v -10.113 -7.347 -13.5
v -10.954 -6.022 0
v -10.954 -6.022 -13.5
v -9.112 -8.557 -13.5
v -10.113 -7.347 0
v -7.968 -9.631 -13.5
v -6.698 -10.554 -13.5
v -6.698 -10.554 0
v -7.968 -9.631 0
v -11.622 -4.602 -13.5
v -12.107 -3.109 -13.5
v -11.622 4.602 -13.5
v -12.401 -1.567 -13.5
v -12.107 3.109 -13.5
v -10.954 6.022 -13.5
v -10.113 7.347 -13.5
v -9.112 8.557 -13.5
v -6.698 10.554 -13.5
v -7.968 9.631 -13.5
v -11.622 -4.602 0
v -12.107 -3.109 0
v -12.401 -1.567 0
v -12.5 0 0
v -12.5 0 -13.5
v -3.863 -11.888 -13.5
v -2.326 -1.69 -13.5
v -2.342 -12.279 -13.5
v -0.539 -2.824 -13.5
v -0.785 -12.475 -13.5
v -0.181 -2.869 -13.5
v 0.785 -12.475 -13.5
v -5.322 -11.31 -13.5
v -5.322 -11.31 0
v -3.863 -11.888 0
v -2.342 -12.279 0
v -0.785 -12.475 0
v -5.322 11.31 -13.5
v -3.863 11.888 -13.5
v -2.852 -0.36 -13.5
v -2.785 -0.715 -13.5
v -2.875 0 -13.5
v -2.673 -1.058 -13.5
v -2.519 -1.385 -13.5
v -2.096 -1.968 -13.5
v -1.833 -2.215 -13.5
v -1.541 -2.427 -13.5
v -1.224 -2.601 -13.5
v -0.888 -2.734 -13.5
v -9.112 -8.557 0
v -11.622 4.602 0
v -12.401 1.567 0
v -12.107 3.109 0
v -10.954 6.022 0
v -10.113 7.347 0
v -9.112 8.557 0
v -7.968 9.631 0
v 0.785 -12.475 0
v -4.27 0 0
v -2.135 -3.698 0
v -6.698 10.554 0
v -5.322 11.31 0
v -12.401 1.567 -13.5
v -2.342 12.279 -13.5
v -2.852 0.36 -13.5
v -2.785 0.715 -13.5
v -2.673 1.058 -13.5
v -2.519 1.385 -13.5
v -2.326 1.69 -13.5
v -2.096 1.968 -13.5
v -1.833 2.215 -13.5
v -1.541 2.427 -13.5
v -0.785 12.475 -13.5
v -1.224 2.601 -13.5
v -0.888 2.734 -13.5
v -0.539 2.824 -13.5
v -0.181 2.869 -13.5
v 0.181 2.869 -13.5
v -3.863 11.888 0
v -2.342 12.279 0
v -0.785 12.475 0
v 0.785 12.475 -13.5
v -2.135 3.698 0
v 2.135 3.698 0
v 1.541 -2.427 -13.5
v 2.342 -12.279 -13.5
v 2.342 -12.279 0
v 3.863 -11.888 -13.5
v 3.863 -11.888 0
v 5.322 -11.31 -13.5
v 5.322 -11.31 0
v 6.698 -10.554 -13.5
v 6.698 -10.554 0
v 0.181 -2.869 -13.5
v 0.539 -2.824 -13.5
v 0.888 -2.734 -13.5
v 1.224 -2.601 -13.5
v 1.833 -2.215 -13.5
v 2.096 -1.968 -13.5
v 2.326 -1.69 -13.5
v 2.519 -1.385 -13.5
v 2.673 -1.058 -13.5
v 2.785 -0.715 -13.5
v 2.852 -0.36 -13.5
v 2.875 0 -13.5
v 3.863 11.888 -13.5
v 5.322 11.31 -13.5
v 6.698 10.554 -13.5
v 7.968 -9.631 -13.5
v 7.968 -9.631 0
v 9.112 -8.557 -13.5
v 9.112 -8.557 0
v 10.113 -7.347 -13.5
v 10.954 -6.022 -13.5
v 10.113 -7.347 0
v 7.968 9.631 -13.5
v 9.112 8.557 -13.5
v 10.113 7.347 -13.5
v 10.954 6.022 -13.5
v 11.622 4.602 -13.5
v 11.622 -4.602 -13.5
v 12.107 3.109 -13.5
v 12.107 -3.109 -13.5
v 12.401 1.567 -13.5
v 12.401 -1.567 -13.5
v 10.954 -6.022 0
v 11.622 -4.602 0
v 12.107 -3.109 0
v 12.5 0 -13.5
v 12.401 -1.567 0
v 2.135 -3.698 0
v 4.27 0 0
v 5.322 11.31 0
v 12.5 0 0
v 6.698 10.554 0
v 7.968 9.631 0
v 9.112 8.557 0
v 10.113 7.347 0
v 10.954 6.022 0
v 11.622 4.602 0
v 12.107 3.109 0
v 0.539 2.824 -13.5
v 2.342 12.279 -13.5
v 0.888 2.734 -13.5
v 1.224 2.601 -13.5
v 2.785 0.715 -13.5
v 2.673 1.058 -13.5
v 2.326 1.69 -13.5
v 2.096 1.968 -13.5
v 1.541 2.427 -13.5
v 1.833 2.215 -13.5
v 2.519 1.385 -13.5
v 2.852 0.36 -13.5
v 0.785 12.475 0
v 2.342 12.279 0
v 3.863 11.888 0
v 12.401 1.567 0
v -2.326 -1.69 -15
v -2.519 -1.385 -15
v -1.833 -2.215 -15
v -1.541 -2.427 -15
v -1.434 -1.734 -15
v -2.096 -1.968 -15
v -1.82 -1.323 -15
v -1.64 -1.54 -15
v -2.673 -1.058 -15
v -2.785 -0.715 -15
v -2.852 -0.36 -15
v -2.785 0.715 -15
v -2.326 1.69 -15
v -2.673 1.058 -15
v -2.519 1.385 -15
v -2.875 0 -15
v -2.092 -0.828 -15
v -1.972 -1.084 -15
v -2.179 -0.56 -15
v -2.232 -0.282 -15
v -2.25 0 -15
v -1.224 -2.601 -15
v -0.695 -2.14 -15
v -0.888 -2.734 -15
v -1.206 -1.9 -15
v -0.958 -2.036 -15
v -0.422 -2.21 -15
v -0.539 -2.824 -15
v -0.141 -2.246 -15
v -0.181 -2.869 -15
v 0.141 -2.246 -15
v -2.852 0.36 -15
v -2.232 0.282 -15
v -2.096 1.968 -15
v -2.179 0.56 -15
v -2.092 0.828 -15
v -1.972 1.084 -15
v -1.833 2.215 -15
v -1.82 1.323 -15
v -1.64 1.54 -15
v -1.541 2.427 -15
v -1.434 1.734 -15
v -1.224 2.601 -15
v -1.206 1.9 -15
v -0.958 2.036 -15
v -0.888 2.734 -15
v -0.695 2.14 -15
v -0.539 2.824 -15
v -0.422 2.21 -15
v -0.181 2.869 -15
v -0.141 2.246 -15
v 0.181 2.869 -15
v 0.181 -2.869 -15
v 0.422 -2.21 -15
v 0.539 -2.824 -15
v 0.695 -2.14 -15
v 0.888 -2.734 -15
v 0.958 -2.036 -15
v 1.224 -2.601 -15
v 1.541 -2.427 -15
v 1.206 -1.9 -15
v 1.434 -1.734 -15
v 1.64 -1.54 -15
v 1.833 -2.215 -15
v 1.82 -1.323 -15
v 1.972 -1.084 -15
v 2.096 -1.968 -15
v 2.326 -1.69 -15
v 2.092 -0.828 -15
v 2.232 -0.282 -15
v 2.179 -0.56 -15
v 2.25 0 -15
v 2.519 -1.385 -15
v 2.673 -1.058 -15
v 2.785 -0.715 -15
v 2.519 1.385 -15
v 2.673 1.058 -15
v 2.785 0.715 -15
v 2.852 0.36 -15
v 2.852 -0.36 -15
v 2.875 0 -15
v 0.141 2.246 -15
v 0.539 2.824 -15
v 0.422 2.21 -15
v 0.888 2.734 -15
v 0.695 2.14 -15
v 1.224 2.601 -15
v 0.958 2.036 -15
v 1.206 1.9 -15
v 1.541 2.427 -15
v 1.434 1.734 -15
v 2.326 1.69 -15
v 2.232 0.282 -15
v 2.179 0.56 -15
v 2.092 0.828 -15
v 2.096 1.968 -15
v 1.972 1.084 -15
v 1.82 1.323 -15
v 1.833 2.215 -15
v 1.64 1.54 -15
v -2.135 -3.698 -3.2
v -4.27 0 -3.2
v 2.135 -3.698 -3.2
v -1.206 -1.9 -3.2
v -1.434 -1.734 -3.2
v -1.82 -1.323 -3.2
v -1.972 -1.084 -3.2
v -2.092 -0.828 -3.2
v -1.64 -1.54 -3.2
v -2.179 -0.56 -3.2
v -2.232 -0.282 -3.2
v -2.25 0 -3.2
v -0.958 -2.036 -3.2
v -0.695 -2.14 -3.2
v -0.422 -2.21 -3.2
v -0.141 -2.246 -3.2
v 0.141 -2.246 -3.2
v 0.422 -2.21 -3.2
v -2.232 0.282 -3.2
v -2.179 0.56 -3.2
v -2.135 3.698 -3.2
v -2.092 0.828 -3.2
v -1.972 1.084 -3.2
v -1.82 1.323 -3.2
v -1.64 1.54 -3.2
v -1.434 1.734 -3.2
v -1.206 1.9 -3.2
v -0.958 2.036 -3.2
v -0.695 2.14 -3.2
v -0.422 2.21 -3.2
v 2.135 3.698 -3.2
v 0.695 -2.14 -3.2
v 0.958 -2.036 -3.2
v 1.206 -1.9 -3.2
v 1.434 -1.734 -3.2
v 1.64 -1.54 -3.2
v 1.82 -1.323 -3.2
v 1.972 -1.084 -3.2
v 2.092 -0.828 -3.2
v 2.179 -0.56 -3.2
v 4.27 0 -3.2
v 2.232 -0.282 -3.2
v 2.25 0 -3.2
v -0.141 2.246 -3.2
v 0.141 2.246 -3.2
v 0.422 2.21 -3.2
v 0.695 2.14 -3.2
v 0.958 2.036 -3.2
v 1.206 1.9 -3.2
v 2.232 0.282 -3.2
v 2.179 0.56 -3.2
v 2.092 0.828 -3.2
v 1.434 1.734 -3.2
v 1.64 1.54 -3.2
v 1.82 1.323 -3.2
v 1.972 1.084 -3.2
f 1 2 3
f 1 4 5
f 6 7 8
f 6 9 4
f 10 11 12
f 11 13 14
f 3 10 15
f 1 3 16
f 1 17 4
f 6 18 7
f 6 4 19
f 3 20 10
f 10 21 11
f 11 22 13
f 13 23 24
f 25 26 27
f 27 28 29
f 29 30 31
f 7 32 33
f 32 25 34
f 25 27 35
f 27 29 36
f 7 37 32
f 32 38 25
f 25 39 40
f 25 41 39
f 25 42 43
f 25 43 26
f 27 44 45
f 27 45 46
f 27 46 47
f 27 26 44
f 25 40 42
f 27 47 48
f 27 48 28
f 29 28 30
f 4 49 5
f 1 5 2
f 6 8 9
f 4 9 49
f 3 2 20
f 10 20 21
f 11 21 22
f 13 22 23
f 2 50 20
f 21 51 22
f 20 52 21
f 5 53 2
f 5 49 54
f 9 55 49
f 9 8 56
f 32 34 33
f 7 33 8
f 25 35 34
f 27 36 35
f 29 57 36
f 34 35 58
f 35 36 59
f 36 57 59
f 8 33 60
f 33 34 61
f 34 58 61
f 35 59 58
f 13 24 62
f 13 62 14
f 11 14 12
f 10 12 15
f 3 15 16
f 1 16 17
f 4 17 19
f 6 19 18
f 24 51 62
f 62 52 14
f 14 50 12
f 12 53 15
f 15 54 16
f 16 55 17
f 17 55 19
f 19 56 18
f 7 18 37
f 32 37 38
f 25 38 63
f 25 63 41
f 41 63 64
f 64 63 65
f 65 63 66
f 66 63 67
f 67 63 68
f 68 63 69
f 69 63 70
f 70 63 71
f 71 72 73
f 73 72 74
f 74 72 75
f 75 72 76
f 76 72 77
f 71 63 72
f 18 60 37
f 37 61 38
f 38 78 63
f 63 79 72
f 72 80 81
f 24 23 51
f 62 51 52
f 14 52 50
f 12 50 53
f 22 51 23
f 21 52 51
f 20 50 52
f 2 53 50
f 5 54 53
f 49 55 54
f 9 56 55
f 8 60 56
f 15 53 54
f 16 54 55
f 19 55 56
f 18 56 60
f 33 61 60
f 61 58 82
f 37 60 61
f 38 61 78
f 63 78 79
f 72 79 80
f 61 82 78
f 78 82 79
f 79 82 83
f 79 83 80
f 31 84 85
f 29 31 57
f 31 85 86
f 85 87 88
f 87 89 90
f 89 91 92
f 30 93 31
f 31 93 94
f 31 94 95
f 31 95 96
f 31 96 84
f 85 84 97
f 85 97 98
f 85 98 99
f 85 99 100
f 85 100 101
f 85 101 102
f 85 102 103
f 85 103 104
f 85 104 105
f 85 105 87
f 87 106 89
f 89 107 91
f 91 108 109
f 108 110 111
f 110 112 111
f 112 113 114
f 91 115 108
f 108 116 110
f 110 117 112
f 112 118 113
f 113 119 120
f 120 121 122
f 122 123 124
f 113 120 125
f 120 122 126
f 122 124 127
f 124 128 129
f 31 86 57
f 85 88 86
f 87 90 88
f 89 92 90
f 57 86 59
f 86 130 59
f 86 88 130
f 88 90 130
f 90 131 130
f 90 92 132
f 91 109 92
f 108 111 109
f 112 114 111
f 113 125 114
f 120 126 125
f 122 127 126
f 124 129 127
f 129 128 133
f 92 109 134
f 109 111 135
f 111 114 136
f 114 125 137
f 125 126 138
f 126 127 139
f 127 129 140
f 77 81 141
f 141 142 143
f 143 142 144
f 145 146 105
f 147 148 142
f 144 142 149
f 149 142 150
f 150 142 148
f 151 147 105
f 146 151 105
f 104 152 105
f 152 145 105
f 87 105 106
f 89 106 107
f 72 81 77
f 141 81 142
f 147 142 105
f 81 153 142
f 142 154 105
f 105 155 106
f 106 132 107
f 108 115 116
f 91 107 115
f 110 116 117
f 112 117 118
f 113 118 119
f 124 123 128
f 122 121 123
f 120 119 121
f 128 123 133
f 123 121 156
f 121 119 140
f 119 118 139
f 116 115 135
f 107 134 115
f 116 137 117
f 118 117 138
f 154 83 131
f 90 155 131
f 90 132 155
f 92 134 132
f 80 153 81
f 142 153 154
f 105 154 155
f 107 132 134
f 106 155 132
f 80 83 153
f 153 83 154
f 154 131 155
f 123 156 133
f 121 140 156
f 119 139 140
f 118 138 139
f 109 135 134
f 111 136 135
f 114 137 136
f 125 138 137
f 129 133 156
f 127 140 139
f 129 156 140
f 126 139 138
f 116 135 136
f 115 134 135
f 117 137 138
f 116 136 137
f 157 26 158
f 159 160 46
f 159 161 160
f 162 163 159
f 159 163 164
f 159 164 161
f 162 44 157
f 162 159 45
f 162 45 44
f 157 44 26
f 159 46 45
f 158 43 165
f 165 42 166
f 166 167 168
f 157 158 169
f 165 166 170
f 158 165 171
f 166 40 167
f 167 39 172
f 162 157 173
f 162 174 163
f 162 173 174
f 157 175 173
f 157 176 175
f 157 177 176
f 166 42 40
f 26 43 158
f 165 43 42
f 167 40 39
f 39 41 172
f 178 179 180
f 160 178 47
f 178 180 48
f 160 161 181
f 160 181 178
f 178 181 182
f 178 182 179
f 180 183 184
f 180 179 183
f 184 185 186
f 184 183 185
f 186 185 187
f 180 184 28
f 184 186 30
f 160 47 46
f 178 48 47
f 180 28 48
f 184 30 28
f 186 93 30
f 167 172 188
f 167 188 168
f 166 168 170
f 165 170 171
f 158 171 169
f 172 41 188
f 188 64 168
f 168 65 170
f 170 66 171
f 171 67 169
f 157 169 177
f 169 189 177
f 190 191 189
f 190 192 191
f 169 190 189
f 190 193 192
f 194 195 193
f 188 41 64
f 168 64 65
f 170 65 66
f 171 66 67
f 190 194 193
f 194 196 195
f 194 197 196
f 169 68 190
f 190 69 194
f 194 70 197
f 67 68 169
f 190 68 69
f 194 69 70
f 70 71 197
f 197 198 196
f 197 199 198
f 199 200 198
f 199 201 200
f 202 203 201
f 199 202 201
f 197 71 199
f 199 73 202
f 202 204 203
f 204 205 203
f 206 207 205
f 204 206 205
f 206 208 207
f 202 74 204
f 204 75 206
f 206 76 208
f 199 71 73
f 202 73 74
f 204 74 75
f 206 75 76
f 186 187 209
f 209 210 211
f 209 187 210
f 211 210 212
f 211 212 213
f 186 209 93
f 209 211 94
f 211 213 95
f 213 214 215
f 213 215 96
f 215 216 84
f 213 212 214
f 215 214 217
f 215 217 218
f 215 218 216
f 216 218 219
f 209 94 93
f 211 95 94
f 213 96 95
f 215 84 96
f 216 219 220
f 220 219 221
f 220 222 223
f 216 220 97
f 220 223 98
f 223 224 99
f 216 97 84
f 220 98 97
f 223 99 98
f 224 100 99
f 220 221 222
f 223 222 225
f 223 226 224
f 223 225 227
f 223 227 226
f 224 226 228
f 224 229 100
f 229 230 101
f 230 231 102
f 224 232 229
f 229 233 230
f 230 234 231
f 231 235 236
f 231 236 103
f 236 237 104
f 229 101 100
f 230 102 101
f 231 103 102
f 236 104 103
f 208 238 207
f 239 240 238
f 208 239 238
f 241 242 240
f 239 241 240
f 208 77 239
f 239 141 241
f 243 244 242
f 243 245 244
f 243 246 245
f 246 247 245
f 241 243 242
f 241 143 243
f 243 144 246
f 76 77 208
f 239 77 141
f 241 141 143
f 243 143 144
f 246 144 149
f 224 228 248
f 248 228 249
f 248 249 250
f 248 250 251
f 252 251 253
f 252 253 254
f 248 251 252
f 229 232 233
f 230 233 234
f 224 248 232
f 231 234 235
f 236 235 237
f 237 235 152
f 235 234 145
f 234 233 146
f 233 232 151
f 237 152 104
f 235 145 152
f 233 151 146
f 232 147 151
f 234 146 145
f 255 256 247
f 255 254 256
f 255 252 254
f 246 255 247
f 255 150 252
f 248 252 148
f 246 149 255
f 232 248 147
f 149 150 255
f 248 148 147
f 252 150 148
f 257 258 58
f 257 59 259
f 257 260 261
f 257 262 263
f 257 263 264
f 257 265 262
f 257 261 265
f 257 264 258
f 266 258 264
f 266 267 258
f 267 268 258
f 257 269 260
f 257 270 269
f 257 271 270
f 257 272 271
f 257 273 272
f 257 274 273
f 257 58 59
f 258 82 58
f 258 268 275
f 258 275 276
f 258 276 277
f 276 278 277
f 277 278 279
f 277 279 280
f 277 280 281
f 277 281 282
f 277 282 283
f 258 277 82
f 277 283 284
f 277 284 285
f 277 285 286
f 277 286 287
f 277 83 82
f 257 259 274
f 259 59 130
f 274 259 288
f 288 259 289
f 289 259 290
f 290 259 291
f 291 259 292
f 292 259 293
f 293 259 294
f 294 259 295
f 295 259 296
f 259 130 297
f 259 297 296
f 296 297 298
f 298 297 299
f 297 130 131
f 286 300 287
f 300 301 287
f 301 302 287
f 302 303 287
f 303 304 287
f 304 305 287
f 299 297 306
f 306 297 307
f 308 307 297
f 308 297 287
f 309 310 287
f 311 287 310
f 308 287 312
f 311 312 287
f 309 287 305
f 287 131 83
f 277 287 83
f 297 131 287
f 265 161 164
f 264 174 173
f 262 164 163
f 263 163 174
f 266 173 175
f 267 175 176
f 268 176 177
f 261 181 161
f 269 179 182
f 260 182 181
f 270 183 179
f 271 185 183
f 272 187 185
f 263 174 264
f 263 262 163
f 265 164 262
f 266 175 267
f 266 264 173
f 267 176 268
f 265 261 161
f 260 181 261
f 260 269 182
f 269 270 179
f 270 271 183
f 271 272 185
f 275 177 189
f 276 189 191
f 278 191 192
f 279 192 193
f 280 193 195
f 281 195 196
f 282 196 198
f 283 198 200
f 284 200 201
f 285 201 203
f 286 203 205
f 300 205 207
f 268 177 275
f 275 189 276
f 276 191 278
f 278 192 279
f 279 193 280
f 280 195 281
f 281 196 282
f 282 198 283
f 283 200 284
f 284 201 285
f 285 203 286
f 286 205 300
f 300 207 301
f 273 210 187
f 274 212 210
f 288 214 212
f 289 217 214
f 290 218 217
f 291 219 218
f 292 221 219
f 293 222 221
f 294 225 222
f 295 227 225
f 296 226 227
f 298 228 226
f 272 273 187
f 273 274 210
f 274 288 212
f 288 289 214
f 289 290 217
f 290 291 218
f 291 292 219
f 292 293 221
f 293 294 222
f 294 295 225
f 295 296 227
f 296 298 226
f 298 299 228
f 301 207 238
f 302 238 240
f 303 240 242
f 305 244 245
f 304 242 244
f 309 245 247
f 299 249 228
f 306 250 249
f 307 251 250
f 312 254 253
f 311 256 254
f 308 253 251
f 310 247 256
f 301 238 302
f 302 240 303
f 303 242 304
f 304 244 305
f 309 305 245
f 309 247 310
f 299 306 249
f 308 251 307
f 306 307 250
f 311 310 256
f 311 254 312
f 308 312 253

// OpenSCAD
$fn = 50;

difference() {
	union() {
		translate(v = [0, 0, -13.5]) {
			cylinder(h = 13.5, r = 12.5);
		}
		#translate(v = [0, 0, -15.0]) {
			cylinder(h = 15, r = 2.875);
		}
	}
	union() {
		translate(v = [0, 0, 0]) {
			rotate(a = [0, 0, 0]) {
				difference() {
					union() {
						translate(v = [0, 0, -3.2]) {
							linear_extrude(height = 3.2) {
								polygon(points = [[4.2698, 0.0], [2.1349000000000005, 3.697755269078796], [-2.134899999999999, 3.6977552690787965], [-4.2698, 5.228996902999369e-16], [-2.134900000000002, -3.6977552690787956], [2.1348999999999974, -3.697755269078798]]);
							}
						}
					}
					union();
				}
			}
		}
		#translate(v = [0, 0, -100.0]) {
			cylinder(h = 200, r = 2.25);
		}
	}
}
